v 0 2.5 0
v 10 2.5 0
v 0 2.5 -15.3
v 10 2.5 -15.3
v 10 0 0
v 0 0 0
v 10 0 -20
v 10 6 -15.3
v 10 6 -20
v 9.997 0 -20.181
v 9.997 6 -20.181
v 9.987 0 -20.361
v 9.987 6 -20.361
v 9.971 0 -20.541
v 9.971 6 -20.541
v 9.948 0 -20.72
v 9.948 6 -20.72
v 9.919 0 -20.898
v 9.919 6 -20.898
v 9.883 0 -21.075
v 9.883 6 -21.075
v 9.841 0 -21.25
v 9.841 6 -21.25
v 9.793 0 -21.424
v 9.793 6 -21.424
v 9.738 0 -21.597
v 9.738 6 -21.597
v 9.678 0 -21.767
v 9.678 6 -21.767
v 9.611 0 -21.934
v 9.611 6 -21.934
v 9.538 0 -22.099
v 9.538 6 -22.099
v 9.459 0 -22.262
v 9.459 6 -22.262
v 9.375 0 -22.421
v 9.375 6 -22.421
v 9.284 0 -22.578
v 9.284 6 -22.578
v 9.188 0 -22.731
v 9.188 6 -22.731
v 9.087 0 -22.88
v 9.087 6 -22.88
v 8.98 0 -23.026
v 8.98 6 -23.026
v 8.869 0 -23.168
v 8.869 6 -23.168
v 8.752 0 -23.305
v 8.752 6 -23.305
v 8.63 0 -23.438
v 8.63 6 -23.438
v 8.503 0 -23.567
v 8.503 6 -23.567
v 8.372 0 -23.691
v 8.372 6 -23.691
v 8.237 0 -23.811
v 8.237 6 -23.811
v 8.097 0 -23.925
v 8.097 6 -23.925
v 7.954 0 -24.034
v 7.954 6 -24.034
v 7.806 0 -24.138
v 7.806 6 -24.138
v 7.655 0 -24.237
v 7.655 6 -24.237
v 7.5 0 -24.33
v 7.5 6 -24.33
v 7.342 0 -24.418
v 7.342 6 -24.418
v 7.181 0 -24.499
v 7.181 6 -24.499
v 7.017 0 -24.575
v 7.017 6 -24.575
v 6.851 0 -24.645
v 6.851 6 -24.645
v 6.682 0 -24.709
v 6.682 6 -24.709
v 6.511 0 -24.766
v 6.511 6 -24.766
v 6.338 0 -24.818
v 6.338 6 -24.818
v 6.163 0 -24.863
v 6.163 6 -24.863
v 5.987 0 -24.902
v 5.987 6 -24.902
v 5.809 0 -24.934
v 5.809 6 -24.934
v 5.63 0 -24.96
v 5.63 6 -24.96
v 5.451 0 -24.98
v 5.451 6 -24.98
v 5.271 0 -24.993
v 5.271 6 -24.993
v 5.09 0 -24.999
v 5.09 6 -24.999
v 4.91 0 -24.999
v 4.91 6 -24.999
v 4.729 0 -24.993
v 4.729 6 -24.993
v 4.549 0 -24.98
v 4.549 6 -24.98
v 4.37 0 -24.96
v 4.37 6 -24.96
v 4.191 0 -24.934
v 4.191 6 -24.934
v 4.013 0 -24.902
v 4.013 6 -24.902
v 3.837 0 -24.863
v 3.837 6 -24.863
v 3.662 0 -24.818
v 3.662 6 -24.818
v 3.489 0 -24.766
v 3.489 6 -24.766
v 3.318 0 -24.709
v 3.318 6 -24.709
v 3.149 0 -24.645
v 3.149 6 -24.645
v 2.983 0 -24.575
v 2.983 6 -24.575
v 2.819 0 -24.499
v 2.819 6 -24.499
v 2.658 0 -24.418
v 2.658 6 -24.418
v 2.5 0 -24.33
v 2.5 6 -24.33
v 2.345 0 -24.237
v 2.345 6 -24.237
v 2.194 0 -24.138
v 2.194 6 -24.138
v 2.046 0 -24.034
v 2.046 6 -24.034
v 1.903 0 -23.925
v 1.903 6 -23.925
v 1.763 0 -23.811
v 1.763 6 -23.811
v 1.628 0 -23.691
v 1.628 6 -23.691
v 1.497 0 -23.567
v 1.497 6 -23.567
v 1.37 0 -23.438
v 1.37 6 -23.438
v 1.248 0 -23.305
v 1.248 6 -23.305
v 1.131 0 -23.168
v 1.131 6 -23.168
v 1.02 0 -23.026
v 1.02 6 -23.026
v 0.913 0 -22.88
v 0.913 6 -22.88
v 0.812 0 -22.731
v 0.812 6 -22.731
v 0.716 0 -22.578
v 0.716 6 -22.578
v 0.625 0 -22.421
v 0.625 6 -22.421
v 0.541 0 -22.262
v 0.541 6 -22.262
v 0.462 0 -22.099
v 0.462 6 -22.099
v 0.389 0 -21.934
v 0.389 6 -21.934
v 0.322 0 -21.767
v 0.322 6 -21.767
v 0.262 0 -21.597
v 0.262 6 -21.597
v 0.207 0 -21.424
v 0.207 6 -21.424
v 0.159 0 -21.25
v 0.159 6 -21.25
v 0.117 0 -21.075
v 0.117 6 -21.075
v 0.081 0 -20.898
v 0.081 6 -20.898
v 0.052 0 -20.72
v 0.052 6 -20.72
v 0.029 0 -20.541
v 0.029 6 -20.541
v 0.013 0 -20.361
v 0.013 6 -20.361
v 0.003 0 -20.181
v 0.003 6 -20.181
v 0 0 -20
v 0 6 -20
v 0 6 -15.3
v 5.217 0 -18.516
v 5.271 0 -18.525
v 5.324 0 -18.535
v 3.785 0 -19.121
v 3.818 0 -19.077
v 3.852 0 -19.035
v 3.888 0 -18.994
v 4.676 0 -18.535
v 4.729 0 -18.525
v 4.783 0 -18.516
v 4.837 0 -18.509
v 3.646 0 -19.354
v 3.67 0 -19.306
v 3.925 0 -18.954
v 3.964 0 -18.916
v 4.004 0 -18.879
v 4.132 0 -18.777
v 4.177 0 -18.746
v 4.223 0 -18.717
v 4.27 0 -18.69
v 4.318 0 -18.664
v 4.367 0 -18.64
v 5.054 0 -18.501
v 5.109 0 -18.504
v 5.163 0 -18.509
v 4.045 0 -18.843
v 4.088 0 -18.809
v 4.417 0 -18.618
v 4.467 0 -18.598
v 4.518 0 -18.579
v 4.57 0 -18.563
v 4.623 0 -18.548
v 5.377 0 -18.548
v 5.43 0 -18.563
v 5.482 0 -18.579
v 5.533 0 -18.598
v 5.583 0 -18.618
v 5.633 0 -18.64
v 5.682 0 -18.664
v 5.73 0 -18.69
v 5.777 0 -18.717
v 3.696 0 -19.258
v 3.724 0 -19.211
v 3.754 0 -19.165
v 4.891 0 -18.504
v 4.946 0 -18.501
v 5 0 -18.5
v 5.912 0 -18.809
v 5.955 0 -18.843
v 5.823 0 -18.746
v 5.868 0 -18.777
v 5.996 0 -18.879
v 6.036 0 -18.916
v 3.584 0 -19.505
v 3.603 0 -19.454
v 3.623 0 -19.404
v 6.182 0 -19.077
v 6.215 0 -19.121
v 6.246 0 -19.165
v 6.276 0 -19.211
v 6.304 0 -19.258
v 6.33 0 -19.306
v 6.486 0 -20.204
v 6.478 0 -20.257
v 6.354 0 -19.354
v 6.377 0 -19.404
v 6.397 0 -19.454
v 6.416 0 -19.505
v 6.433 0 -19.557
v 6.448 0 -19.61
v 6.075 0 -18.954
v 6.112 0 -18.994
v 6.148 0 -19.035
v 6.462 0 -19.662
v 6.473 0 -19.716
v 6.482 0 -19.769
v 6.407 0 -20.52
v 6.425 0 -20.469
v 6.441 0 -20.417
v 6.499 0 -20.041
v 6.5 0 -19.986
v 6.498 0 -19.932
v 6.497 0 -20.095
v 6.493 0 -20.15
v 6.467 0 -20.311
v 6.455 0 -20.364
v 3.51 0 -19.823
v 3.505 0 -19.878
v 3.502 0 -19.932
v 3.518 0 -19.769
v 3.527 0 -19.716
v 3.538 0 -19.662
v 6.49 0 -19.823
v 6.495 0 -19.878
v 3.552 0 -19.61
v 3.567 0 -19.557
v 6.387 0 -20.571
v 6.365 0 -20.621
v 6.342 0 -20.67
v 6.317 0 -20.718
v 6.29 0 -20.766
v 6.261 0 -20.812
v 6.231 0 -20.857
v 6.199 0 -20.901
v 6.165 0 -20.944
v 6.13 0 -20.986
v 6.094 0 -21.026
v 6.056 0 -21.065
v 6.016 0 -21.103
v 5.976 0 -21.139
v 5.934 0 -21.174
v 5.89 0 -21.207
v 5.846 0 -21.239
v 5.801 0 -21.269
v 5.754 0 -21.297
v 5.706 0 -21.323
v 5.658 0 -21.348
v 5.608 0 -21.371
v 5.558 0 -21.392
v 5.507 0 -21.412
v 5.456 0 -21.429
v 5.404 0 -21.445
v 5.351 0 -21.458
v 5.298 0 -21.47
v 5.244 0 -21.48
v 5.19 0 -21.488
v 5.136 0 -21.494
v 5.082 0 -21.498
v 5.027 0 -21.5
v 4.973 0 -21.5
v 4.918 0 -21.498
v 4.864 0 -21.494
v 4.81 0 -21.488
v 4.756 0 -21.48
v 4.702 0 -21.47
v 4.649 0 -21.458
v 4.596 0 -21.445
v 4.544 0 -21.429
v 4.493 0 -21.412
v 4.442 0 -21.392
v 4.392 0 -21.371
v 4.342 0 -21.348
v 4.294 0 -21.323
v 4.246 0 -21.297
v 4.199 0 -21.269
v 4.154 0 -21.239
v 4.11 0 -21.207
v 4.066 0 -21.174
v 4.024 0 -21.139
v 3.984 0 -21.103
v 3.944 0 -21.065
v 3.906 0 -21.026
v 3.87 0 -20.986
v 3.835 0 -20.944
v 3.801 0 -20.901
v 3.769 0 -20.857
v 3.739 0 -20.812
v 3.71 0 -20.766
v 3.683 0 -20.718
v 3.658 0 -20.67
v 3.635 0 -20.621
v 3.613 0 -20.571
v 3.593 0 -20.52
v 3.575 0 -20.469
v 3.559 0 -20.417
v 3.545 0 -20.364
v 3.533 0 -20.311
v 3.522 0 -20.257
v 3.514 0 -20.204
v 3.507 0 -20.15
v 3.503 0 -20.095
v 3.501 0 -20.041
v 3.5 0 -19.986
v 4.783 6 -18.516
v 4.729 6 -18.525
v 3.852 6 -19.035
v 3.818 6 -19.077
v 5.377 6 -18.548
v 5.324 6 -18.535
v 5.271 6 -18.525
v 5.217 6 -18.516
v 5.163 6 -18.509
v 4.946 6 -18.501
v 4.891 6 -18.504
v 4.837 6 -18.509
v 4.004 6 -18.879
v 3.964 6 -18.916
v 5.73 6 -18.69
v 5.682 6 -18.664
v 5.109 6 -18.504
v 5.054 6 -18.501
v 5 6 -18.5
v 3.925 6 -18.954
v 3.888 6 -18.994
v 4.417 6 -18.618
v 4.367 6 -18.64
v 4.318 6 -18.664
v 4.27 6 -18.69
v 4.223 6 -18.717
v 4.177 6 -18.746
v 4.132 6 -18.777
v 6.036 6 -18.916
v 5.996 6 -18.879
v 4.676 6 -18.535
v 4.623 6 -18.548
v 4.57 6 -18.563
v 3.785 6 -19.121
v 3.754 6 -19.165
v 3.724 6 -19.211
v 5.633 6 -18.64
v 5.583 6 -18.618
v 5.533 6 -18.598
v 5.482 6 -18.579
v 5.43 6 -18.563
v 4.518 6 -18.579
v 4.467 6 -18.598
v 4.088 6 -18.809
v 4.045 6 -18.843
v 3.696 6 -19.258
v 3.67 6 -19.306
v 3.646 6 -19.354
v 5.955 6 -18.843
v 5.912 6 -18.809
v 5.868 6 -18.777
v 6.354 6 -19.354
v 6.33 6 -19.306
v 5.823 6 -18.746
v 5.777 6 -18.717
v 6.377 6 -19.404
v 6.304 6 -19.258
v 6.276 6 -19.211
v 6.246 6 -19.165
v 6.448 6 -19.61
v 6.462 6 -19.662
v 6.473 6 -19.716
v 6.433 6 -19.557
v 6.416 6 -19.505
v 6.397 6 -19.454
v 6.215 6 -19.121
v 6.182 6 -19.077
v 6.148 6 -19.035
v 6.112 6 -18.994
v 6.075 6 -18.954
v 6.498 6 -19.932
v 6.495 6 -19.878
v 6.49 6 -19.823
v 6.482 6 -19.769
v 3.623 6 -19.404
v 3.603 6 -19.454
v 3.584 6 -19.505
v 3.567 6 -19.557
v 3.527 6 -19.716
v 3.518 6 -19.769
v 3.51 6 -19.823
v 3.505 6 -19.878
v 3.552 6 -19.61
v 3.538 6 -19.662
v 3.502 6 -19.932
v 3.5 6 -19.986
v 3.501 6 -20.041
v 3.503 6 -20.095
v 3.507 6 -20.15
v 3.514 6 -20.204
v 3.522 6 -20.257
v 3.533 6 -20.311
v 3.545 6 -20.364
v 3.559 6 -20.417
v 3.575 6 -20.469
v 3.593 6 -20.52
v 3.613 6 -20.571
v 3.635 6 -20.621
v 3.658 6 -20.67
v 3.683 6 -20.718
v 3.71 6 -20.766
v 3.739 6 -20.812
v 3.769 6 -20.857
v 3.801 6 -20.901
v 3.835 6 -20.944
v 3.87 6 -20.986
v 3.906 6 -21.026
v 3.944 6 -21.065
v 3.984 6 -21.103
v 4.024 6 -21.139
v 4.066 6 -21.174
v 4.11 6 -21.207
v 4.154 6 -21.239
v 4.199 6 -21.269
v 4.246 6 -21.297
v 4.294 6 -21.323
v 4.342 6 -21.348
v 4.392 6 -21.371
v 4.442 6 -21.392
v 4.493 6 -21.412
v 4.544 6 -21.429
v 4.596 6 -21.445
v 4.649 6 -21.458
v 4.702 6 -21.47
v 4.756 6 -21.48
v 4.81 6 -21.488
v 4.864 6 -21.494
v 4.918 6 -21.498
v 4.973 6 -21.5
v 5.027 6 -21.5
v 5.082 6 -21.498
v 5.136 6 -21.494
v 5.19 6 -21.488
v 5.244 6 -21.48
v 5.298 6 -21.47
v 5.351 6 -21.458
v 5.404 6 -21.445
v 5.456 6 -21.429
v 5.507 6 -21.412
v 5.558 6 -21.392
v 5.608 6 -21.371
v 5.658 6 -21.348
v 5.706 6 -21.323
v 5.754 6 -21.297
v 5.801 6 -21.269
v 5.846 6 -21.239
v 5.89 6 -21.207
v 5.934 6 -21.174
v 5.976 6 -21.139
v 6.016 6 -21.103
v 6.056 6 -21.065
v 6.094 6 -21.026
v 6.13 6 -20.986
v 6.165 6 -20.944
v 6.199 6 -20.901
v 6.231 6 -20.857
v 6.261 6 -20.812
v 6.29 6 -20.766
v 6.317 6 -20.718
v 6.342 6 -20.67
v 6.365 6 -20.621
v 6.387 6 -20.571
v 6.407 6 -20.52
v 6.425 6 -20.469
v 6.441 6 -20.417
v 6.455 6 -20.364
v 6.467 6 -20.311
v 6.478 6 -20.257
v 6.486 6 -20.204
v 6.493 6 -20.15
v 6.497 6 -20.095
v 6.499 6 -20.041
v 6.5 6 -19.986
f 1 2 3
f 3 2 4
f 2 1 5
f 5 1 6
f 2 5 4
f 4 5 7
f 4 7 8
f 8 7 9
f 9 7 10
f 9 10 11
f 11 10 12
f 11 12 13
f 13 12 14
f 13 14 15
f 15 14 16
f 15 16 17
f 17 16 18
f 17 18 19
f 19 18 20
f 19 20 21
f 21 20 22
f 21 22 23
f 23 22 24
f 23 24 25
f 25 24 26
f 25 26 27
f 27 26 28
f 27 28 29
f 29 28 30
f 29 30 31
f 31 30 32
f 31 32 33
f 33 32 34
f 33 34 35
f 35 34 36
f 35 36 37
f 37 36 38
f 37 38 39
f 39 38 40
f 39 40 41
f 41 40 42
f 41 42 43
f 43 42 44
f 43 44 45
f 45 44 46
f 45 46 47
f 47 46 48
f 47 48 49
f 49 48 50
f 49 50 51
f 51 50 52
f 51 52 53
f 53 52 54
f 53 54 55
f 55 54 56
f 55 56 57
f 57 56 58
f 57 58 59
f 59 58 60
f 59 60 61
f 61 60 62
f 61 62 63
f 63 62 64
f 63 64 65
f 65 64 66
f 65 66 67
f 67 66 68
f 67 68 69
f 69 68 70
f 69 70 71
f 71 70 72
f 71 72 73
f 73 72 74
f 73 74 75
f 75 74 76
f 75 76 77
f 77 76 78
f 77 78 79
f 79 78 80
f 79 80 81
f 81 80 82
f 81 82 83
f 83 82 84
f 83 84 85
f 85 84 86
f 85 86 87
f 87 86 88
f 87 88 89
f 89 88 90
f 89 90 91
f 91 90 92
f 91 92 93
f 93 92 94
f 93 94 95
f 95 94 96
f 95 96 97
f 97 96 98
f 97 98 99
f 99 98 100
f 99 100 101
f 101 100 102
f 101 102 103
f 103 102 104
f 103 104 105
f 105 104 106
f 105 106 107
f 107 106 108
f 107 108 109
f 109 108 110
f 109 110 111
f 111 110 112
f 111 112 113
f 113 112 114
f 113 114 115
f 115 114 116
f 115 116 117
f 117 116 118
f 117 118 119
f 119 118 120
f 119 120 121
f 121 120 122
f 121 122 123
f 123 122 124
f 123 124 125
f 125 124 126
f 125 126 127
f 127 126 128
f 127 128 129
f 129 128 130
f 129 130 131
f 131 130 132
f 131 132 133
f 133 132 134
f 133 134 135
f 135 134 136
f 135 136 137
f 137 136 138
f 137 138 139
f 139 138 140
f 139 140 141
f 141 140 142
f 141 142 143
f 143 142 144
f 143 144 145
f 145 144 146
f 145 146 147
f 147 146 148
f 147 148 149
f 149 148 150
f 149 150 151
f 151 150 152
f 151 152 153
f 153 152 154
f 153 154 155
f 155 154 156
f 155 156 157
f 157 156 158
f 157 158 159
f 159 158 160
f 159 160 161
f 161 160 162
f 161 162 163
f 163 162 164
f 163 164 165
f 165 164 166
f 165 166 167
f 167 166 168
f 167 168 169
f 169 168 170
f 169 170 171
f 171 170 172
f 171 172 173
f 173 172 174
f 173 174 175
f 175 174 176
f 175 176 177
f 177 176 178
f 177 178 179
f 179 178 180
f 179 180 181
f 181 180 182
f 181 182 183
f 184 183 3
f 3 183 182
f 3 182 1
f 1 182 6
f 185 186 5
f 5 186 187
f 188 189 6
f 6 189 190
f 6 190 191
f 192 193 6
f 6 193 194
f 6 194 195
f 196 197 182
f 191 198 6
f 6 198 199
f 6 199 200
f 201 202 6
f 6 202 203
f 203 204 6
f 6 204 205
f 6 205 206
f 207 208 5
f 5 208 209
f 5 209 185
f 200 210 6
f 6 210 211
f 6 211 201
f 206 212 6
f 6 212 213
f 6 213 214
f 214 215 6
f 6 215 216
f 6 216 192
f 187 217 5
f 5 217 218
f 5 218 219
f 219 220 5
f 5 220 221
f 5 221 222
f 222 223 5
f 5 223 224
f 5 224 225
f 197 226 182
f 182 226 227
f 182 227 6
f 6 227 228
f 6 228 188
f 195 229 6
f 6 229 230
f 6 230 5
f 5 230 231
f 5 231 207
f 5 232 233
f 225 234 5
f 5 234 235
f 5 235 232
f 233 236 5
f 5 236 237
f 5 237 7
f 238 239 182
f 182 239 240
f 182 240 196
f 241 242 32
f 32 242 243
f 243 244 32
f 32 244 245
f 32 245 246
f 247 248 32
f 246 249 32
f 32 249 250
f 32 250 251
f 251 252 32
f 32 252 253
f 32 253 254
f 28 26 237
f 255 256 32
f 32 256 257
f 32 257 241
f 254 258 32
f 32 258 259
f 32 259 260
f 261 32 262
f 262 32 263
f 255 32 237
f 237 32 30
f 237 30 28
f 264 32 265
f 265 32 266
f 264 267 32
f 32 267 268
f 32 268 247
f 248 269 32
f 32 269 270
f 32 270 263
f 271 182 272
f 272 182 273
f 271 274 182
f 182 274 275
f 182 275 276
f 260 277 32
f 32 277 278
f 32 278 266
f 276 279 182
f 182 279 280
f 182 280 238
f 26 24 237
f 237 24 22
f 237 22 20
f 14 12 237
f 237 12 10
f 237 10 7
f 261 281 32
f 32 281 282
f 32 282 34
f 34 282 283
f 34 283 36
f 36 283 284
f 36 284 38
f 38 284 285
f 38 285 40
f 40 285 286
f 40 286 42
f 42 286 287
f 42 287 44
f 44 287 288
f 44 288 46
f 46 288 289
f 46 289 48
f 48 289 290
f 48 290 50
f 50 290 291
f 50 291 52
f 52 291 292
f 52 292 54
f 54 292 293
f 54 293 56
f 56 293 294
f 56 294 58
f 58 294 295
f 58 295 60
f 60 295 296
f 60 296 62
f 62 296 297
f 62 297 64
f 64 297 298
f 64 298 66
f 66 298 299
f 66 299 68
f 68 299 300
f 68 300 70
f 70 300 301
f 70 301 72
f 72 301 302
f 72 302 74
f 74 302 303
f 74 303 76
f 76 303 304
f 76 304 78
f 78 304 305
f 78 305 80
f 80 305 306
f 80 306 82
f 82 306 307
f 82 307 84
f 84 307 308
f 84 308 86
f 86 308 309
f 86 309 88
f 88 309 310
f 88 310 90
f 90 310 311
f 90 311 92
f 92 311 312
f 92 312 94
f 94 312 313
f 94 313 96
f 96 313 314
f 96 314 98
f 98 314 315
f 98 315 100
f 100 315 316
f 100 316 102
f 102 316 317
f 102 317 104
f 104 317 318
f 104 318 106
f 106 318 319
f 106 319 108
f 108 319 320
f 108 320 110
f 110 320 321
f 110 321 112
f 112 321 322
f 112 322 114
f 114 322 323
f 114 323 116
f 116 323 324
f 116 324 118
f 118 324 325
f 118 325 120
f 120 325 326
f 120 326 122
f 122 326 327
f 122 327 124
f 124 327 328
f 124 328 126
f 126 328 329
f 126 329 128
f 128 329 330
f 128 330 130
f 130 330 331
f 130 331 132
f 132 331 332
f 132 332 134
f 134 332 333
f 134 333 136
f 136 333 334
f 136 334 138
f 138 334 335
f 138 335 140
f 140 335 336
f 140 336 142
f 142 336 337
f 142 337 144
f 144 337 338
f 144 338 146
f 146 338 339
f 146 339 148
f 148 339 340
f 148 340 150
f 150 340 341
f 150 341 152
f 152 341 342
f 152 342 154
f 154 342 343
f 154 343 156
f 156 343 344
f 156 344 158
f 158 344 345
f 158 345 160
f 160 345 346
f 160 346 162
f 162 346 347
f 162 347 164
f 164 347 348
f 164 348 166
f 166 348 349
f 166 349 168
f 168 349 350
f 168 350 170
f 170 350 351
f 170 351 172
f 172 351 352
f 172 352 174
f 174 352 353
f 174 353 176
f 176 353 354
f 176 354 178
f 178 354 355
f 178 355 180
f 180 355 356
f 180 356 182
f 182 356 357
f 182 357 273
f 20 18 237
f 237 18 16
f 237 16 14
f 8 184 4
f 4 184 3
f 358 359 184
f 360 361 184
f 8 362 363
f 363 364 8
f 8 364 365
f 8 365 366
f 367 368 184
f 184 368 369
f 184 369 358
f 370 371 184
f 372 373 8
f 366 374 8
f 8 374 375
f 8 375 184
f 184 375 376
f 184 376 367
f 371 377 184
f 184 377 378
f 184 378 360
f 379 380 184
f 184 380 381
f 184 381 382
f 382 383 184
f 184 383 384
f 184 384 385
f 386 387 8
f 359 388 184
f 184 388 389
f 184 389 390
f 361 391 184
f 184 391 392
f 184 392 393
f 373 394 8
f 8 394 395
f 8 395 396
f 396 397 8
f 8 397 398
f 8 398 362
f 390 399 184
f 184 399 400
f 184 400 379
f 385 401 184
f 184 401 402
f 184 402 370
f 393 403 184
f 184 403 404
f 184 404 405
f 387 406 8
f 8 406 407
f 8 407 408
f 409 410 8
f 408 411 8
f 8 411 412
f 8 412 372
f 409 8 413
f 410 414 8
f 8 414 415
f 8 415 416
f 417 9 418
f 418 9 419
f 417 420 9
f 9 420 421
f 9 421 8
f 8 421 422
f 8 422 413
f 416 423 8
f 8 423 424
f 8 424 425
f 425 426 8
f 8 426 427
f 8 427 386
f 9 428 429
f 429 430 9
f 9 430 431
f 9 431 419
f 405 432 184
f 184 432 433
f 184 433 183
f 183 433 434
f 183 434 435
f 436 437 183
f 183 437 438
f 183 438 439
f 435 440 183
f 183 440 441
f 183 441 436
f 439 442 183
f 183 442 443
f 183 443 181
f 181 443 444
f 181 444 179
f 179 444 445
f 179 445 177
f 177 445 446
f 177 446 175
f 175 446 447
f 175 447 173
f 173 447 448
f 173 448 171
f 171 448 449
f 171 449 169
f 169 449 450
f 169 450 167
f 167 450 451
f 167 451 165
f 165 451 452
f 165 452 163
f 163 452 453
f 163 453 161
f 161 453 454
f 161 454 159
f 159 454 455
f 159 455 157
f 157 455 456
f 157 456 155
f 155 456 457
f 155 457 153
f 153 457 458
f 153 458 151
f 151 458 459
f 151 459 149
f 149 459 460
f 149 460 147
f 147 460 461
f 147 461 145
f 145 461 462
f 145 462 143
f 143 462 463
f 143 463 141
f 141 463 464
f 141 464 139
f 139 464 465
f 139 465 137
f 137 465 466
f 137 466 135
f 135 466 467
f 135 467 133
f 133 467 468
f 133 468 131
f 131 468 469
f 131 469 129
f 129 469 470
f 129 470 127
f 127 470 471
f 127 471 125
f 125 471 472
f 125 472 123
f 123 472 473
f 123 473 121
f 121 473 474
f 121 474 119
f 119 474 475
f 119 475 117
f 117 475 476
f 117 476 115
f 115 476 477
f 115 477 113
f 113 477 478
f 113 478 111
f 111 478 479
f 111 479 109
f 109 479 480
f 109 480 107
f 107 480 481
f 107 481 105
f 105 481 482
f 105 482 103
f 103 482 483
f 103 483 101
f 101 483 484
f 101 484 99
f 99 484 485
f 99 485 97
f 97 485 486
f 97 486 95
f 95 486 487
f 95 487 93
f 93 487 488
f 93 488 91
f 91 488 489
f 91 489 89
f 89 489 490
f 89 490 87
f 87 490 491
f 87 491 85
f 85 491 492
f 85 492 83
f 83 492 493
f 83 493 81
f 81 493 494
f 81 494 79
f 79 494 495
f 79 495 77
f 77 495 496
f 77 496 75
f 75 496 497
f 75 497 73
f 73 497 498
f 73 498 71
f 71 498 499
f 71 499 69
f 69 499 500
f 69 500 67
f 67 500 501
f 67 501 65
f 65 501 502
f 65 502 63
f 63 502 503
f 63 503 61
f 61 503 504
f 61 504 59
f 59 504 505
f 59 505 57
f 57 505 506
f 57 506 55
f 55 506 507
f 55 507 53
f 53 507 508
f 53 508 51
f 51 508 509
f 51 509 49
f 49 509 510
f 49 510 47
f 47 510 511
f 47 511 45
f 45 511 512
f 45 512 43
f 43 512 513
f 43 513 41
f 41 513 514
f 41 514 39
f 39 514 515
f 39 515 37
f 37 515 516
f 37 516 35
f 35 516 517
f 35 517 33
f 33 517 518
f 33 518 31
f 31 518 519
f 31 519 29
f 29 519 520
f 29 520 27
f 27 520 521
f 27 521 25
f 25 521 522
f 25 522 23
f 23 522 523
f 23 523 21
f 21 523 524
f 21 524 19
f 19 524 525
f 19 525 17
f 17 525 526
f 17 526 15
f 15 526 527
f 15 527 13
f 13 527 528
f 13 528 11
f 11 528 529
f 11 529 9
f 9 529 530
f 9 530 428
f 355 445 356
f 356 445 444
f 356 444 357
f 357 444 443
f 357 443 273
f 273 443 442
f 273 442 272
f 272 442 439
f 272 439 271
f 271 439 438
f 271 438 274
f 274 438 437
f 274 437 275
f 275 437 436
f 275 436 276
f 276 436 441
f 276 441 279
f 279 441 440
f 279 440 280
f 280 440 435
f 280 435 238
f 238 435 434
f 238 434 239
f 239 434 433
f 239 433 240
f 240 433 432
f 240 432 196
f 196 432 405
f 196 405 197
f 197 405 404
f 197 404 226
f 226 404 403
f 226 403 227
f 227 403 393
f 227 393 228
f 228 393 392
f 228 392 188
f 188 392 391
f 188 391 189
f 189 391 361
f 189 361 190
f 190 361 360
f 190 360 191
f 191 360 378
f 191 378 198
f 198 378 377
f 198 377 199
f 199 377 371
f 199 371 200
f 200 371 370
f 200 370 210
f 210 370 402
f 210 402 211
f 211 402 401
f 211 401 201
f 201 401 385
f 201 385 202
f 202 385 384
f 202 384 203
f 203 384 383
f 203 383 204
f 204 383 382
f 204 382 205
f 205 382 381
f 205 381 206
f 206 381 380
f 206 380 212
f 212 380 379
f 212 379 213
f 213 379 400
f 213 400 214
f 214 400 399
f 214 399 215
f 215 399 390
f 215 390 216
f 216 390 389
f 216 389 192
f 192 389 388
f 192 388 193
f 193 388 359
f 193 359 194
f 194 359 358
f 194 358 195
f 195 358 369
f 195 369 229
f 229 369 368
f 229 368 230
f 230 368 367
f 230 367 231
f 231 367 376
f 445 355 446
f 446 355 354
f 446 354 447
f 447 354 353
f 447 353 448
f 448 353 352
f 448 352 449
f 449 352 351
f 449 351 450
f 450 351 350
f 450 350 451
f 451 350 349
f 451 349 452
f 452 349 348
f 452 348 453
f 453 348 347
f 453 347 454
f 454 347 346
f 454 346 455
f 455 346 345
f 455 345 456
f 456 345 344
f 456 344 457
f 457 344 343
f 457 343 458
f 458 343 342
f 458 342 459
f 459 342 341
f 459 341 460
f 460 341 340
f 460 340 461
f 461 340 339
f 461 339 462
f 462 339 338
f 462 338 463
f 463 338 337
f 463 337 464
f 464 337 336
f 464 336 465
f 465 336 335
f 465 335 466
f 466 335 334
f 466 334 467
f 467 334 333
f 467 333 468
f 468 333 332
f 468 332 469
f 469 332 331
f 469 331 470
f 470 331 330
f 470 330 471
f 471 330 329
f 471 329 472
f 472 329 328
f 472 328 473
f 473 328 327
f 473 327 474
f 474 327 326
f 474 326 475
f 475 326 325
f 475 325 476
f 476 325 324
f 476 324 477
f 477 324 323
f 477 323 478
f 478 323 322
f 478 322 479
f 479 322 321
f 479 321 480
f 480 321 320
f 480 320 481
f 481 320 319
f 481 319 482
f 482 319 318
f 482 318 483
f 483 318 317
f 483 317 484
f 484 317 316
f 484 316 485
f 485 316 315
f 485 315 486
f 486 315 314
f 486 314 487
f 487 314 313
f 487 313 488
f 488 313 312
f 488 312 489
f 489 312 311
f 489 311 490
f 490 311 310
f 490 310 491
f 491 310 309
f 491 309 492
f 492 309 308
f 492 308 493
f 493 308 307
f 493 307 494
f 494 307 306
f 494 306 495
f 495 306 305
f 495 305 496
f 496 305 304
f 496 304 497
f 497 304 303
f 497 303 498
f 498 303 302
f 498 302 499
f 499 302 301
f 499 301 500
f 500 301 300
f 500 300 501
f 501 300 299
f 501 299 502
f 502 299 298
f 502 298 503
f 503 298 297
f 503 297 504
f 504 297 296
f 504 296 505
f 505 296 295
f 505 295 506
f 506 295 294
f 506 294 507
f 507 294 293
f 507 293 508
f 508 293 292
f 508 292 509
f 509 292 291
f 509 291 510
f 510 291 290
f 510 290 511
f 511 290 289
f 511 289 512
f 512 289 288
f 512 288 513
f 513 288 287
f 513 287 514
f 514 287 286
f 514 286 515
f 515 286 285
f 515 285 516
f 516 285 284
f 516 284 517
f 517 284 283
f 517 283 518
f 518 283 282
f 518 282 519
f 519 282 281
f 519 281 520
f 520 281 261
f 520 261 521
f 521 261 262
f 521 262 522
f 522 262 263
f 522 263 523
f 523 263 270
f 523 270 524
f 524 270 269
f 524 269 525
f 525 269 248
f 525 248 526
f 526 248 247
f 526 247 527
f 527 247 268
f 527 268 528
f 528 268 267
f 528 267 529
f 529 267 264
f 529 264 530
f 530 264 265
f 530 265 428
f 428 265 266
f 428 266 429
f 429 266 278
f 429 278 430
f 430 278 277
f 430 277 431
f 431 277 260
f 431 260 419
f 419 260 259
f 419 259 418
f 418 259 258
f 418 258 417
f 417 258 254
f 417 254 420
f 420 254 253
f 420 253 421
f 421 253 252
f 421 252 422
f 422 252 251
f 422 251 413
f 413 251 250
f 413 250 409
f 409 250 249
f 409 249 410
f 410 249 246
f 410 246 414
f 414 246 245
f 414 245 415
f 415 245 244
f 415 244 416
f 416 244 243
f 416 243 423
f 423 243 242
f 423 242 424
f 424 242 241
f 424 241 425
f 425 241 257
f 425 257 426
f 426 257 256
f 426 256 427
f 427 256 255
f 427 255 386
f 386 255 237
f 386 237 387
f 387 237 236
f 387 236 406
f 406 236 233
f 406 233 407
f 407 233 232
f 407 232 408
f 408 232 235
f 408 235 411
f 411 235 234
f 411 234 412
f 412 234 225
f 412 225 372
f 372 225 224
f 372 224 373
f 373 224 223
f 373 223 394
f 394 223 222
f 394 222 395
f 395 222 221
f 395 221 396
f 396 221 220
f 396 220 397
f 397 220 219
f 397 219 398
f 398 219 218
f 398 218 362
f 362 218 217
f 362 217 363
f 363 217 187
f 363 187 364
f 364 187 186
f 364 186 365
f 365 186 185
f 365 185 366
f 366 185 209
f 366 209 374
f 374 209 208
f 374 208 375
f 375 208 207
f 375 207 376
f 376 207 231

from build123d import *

# Parameters (mm, degrees)
AUFSATZ_LINEAR_AUSTRAGEN1_DEPTH = 2.5
AUFSATZ_LINEAR_AUSTRAGEN2_DEPTH = 3.5
SKIZZE3_R                       = 1.5
SCHNITT_LINEAR_AUSTRAGEN1_DEPTH = 7


with BuildPart() as part:
    # Skizze1 → Aufsatz-Linear austragen1 (new body)
    with BuildSketch(Plane(origin=(0, 0, 0), x_dir=(1, 0, 0), z_dir=(0, 1, 0))):
        with BuildLine():
            Line((0, 0), (0, 20))
            ThreePointArc((0, 20), (5, 25), (10, 20))
            Line((10, 20), (10, 0))
            Line((10, 0), (0, 0))
        make_face()
    extrude(amount=AUFSATZ_LINEAR_AUSTRAGEN1_DEPTH)

    # Skizze2 → Aufsatz-Linear austragen2 (add)
    with BuildSketch(Plane(origin=(0, 2.5, 0), x_dir=(1, 0, 0), z_dir=(0, 1, 0))):
        with BuildLine():
            Line((0, 20), (0, 15.3))
            Line((0, 15.3), (10, 15.3))
            Line((10, 15.3), (10, 20))
            ThreePointArc((10, 20), (5, 25), (0, 20))
        make_face()
    extrude(amount=AUFSATZ_LINEAR_AUSTRAGEN2_DEPTH)

    # Skizze3 → Schnitt-Linear austragen1 (cut, through all)
    with BuildSketch(Plane(origin=(0, 6, 0), x_dir=(1, 0, 0), z_dir=(0, 1, 0))):
        with Locations((5, 20)):
            Circle(SKIZZE3_R)
    extrude(amount=-SCHNITT_LINEAR_AUSTRAGEN1_DEPTH, mode=Mode.SUBTRACT)


solid = part.part
